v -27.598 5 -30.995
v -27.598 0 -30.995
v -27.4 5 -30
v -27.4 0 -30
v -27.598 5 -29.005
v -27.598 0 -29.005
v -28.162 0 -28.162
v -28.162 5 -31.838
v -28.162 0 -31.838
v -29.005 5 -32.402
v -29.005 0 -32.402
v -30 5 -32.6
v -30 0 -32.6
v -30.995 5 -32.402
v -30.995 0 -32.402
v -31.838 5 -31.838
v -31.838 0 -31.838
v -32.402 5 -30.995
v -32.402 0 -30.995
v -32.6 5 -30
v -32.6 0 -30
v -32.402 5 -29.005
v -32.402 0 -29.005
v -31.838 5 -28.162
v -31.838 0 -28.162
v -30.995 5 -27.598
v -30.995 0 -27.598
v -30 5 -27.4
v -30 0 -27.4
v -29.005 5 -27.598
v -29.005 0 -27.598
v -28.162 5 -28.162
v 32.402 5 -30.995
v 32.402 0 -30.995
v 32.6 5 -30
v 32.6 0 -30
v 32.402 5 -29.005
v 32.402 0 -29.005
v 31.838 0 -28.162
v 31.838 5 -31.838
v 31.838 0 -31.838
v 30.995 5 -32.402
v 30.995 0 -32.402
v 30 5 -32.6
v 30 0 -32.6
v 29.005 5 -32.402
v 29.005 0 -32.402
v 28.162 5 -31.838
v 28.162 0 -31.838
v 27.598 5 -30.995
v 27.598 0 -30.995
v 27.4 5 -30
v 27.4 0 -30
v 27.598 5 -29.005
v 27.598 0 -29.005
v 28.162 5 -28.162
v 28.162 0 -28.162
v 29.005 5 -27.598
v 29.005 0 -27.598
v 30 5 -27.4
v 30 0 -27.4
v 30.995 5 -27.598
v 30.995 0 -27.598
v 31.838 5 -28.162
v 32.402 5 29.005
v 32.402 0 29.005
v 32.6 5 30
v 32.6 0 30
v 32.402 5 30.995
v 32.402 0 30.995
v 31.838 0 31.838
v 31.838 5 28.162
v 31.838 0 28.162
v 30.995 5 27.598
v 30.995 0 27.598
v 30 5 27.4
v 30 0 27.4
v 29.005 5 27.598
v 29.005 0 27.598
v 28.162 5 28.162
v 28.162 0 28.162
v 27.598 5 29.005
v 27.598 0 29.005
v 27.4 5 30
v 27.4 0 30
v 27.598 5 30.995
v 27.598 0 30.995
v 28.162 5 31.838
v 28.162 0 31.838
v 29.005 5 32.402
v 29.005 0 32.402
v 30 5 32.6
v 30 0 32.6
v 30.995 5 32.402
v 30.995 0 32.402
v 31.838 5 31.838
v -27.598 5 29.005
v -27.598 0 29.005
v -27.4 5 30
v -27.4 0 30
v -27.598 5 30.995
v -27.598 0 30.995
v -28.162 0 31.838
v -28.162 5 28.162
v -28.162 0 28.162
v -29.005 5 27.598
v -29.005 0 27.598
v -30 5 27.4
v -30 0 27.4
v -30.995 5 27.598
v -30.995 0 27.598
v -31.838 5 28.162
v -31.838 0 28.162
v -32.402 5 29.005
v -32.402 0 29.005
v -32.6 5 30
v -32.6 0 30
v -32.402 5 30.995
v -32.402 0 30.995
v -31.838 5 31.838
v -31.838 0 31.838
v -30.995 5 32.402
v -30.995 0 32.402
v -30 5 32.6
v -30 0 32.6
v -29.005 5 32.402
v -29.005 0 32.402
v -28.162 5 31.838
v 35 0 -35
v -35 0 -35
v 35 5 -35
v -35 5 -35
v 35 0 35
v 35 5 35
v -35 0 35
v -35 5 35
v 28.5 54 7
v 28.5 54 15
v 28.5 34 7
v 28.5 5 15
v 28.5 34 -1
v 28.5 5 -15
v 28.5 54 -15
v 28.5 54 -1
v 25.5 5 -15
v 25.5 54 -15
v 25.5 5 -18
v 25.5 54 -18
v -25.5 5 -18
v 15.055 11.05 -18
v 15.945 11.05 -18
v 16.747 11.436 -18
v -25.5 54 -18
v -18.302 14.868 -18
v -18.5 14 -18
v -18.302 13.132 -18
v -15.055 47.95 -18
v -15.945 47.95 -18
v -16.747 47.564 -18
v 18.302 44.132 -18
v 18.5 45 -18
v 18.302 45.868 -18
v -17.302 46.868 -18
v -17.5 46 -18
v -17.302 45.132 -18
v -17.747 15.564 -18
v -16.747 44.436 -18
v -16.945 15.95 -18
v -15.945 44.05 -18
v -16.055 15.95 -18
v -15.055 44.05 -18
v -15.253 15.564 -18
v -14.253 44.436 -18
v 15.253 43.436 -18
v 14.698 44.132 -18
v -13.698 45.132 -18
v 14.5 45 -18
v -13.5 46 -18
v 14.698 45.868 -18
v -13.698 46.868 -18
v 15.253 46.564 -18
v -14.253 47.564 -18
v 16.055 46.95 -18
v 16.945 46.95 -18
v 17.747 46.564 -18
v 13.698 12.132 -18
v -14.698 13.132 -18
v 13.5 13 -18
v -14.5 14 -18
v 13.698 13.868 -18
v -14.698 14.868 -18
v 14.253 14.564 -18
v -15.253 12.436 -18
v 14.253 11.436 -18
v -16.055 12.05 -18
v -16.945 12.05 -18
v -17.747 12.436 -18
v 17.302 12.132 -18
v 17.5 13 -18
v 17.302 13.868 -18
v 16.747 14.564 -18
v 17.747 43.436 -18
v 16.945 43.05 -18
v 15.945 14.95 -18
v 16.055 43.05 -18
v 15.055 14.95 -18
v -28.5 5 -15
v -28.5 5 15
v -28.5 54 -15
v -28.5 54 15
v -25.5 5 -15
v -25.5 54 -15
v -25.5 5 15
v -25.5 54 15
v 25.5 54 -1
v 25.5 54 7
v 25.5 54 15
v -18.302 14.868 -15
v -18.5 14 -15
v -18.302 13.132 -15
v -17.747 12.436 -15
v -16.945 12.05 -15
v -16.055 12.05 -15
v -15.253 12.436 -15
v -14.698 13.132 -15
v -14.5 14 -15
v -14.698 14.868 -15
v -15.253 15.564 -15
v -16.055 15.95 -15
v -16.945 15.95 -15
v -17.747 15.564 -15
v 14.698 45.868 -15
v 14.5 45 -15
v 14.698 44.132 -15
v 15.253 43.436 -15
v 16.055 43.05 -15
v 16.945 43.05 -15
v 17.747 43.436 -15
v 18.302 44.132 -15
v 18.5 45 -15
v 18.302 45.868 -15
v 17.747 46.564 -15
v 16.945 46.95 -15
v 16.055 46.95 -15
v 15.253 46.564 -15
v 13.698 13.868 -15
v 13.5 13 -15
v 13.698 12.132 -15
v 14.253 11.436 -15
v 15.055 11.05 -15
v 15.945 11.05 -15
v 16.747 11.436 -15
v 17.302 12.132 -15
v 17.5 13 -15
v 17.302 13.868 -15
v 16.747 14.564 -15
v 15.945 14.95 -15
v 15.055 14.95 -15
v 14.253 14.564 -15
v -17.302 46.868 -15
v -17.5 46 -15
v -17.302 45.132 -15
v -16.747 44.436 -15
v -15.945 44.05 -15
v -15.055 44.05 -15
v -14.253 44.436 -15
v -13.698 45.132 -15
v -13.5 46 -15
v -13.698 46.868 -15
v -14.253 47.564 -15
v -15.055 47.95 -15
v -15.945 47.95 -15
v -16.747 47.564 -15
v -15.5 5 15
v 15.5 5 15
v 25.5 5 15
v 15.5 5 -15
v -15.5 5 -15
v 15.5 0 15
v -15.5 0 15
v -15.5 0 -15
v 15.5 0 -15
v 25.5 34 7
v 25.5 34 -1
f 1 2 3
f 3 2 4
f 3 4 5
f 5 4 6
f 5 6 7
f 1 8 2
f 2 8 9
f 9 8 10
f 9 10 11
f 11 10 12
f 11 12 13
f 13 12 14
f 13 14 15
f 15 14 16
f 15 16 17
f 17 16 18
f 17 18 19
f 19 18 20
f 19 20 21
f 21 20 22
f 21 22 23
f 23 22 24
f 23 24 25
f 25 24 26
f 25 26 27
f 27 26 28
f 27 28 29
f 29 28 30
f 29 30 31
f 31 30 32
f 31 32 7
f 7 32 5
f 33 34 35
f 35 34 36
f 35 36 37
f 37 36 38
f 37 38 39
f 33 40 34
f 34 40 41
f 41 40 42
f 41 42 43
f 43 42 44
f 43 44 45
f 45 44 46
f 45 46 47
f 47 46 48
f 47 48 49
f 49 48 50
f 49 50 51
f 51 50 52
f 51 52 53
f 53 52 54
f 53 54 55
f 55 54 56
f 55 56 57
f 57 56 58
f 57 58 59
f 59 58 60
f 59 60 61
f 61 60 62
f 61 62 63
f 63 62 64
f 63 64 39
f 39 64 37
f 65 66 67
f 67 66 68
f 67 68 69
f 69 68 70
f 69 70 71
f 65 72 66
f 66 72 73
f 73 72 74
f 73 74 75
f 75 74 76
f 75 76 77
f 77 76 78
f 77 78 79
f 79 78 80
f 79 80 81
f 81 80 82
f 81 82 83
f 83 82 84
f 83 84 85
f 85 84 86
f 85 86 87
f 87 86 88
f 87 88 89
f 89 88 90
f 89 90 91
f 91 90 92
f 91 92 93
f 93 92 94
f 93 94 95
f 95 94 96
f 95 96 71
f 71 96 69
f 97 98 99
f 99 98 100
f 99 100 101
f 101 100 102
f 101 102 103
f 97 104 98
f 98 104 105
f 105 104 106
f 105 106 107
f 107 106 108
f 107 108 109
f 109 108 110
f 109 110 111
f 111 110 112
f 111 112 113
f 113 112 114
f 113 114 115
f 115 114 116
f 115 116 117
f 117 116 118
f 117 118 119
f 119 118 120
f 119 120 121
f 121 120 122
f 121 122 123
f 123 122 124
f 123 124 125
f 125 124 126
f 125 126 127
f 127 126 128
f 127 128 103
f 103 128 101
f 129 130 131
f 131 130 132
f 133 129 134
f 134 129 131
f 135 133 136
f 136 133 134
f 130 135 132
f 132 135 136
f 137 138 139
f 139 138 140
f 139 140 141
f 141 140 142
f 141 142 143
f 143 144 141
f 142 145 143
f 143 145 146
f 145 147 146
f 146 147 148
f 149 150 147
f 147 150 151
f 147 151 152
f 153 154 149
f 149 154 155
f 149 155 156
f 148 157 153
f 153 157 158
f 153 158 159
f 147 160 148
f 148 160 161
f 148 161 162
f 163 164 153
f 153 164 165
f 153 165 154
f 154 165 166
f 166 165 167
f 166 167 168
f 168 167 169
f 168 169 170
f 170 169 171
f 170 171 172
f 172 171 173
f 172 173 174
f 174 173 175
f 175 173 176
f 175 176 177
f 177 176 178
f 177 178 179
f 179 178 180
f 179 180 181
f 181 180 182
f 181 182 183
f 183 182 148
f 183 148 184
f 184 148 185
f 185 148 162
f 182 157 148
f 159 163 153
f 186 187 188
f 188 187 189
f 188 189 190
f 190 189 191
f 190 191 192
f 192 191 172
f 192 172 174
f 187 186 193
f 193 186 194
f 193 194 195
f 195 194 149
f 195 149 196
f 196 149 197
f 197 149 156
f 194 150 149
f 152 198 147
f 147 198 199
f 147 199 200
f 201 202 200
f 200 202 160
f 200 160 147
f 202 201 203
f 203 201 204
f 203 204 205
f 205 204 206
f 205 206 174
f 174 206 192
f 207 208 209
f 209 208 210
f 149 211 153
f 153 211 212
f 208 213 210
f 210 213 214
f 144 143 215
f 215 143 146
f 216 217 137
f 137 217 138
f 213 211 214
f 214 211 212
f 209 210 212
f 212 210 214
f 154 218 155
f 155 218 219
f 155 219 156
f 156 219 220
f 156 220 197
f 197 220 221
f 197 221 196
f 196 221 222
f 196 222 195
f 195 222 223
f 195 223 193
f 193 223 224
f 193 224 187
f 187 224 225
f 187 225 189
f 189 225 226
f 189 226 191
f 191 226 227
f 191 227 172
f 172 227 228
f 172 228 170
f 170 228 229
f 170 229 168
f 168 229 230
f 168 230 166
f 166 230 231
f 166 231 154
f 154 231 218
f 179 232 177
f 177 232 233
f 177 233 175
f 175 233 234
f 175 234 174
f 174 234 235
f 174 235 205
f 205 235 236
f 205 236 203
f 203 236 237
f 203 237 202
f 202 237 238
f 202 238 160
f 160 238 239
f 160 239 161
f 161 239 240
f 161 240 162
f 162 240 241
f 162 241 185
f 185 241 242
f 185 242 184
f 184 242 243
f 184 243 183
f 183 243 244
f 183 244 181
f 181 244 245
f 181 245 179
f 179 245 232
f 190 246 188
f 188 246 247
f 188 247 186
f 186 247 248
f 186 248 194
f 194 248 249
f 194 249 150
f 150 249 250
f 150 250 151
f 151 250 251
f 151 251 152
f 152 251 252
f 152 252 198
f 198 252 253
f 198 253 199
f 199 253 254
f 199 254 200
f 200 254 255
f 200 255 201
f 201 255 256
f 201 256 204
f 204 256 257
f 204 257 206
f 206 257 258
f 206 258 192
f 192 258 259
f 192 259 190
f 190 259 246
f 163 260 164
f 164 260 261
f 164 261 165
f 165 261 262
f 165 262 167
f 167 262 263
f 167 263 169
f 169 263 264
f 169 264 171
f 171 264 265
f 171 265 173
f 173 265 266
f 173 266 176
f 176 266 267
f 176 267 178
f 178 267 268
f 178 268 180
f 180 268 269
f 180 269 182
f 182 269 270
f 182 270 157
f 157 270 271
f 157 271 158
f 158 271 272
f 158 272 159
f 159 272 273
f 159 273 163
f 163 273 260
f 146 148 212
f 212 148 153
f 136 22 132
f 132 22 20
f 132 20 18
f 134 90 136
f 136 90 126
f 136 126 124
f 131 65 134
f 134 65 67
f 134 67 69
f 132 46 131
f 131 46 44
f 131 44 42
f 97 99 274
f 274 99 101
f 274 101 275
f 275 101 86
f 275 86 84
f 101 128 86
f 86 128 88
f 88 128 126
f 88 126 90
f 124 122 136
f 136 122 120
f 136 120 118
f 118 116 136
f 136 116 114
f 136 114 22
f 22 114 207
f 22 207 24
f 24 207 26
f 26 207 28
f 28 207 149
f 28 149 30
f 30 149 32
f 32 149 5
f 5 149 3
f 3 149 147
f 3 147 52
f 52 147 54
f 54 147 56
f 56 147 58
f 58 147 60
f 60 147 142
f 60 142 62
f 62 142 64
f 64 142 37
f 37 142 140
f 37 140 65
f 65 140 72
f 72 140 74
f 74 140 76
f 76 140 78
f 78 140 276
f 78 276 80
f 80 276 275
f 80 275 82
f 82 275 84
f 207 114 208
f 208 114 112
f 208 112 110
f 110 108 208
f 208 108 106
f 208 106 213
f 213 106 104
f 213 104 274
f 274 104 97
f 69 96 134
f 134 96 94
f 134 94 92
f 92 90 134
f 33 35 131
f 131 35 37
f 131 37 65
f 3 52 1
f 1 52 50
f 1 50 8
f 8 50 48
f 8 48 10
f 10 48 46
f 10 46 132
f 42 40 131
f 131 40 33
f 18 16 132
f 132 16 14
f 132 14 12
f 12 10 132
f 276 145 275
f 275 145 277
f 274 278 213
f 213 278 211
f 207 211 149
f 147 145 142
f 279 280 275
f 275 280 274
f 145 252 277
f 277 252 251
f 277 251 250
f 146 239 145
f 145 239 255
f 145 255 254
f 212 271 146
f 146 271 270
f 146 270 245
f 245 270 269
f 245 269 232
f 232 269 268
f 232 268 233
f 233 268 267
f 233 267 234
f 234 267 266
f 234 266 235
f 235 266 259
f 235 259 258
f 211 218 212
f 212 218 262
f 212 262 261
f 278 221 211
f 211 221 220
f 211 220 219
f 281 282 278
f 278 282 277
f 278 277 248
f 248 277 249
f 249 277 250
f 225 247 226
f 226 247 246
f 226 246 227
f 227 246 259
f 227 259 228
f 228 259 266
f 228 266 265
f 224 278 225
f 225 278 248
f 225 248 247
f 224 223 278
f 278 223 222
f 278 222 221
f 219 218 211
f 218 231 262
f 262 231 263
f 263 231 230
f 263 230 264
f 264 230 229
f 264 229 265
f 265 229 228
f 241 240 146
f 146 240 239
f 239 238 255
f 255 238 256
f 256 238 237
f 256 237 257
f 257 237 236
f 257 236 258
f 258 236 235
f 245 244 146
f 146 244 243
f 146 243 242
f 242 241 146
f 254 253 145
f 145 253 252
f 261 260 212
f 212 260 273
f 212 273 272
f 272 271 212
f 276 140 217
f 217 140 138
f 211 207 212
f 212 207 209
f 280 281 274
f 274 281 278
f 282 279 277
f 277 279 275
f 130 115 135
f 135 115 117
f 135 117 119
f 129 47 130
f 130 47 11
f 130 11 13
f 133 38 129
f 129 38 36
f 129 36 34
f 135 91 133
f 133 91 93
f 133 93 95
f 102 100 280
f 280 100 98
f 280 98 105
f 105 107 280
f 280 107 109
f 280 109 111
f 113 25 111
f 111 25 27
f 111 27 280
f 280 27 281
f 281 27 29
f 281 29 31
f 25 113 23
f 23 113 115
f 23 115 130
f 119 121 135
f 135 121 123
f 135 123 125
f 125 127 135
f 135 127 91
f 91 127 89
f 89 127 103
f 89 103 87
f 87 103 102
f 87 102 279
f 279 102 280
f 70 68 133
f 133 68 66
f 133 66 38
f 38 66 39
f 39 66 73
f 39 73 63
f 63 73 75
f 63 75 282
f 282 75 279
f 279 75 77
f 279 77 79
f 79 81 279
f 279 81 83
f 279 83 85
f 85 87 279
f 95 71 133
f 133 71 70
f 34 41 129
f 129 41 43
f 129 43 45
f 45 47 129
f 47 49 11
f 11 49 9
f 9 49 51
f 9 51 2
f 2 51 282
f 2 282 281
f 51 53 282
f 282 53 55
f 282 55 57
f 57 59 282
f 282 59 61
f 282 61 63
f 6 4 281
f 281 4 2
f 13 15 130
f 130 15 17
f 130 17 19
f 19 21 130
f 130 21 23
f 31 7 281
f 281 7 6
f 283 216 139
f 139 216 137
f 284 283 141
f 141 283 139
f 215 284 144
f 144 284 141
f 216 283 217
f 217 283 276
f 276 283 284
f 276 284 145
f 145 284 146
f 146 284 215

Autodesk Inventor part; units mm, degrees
ref_plane "YZ Plane" through (0, 0, 0) normal (1, 0, 0) x (0, 1, 0)
ref_plane "XZ Plane" through (0, 0, 0) normal (0, 1, 0) x (-1, 0, 0)
ref_plane "XY Plane" through (0, 0, 0) normal (0, 0, 1) x (1, 0, 0)
sketch "Boceto1" plane through (0, 0, 0) normal (0, 1, 0) x (-1, 0, 0)
  line L0 (25.5, 15) -> (-25.5, 15)
  line L1 (-25.5, 15) -> (-25.5, -15)
  line L2 (-25.5, -15) -> (25.5, -15)
  line L3 (25.5, -15) -> (25.5, 15)
  line L4 (25.5, 15) -> (-25.5, -15) construction
  line L5 (-25.5, 15) -> (25.5, -15) construction
  line L6 (-15.5, 15) -> (-15.5, -15)
  line L7 (0, 15) -> (0, 11.847)
  line L8 (-25.5, 0) -> (-22.3332, 0)
  line L9 (25.5, 15) -> (25.5, -15)
  line L10 (15.5, 15) -> (15.5, -15)
  line L11 (25.5, 0) -> (22.3332, 0)
  line L12 (-25.5, -15) -> (-25.5, 15)
  line L13 (-25.5, 0) -> (-22.3332, 0)
  line L14 (-25.5, 15) -> (-25.5, -15)
  point P0 (0, 0)
  point P1 (31.5, 22.5)
  dimension "d2" = 10
  dimension "d21" = 51
  dimension "d22" = 30
extrude "Extrusión1" add sketch "Boceto1" along normal blind 5 contours L3 L2 L10 L0 | L6 L2 L1 L0
sketch "Boceto4" plane through (0, 0, 0) normal (0, 1, 0) x (-1, 0, 0)
  line L0 (-28.5, 18) -> (28.5, 18)
  line L1 (28.5, 18) -> (28.5, -18)
  line L2 (28.5, -18) -> (-28.5, -18)
  line L3 (-28.5, -18) -> (-28.5, 18)
  line L4 (-28.5, 18) -> (28.5, -18) construction
  line L5 (28.5, 18) -> (-28.5, -18) construction
  line L6 (28.5, -15) -> (-28.5, -15)
  line L7 (-28.5, 15) -> (28.5, 15)
  line L8 (25.5, -18) -> (25.5, 18)
  line L9 (-25.5, 18) -> (-25.5, -18)
  line L10 (-25.5, -15) -> (-15.5, -15) projected
  point P0 (0, 0)
  point P1 (-25.5, -15)
  point P2 (-25.5, 15)
  point P3 (25.5, 15)
  point P4 (25.5, -15)
  dimension "d23" = 57
  dimension "d24" = 36
  dimension "d27" = 0
extrude "Extrusión4" add sketch "Boceto4" along normal blind 5 contours L0 L8 L7 L9 | L7 L9 L6 L3 | L7 L1 L6 L8 | L6 L8 L2 L9
sketch "Boceto5" plane through (0, 5, 0) normal (0, 1, 0) x (1, 0, 0)
  line L0 (25.5, 18) -> (-25.5, 18) projected
  line L1 (25.5, 15) -> (25.5, 18) projected
  line L2 (-25.5, 18) -> (25.5, 18)
  line L3 (25.5, 18) -> (25.5, 15)
  line L4 (25.5, 15) -> (-25.5, 15)
  line L5 (-25.5, 15) -> (-25.5, 18)
  point P0 (0, 0)
extrude "Extrusión5" add sketch "Boceto5" along normal blind 49
sketch "Boceto6" plane through (-15.5, 0, -15) normal (0, 0, 1) x (1, 0, 0)
  circle A0 centre (32, 45) radius 2
  line L0 (41, 5) -> (41, 54) projected
  line L1 (-10, 54) -> (41, 54) projected
  line L2 (-10, 5) -> (-10, 54) projected
  line L3 (-10, 29.5) -> (15.5, 29.5)
  line L4 (15.5, 29.5) -> (15.5, 54)
  circle A1 centre (0, 46) radius 2
  circle A2 centre (-1, 14) radius 2
  circle A3 centre (31, 13) radius 2
  point P0 (15.5, 0)
  dimension "d30" = 4
  dimension "d31" = 9
  dimension "d32" = 9
  dimension "d35" = 360
extrude "Extrusión6" cut sketch "Boceto6" against normal blind 49 contours A0 | A1 | A2 | A3
sketch "Boceto7" plane through (0, 5, 0) normal (0, 1, 0) x (1, 0, 0)
  line L0 (-28.5, 15) -> (-28.5, -15) projected
  line L1 (-28.5, 15) -> (-25.5, 15)
  line L2 (-25.5, 15) -> (-25.5, -15)
  line L3 (-25.5, -15) -> (-28.5, -15)
  line L4 (-28.5, -15) -> (-28.5, 15)
  line L5 (28.5, 15) -> (25.5, 15) projected
  line L6 (25.5, -15) -> (28.5, -15) projected
  line L7 (28.5, 15) -> (25.5, 15)
  line L8 (25.5, 15) -> (25.5, -15)
  line L9 (25.5, -15) -> (28.5, -15)
  line L10 (28.5, -15) -> (28.5, 15)
  point P0 (0, 0)
  point P1 (25.5, -18)
extrude "Extrusión7" add sketch "Boceto7" along normal blind 49
sketch "Boceto12" plane through (0, 0, 0) normal (0, -1, 0) x (1, 0, 0)
  line L0 (-35, -35) -> (35, -35)
  line L1 (35, -35) -> (35, 35)
  line L2 (35, 35) -> (-35, 35)
  line L3 (-35, 35) -> (-35, -35)
  line L4 (-35, -35) -> (35, 35) construction
  line L5 (35, -35) -> (-35, 35) construction
  line L6 (30, 30) -> (-30, 30)
  line L7 (-30, 30) -> (-30, -30)
  line L8 (-30, -30) -> (30, -30)
  line L9 (30, -30) -> (30, 30)
  line L10 (30, 30) -> (-30, -30) construction
  line L11 (-30, 30) -> (30, -30) construction
  circle A0 centre (-30, 30) radius 2.6
  circle A1 centre (30, 30) radius 2.6
  circle A2 centre (30, -30) radius 2.6
  circle A3 centre (-30, -30) radius 2.6
  line L12 (15.5, -15) -> (15.5, 15) projected
  line L13 (-15.5, -15) -> (15.5, -15)
  line L14 (15.5, -15) -> (15.5, 15)
  line L15 (15.5, 15) -> (-15.5, 15)
  line L16 (-15.5, 15) -> (-15.5, -15)
  line L17 (-15.5, -15) -> (15.5, 15) construction
  line L18 (15.5, -15) -> (-15.5, 15) construction
  point P0 (0, 0)
  point P1 (0, 0)
  dimension "d63" = 70
  dimension "d64" = 70
  dimension "d65" = 60
  dimension "d66" = 5.2
  dimension "d67" = 5.2
  dimension "d68" = 5.2
  dimension "d69" = 5.2
extrude "Extrusión10" add sketch "Boceto12" against normal blind 5 contours L3 L2 L1 L0 | L6 A1 L9 A2 L8 A3 L7 A0
sketch "Boceto13" plane through (28.5, 5, 15) normal (1, 0, 0) x (0, 0, -1)
  line L0 (0, 49) -> (30, 49) projected
  line L1 (8, 49) -> (16, 49)
  line L2 (16, 49) -> (16, 29)
  line L3 (16, 29) -> (8, 29)
  line L4 (8, 29) -> (8, 49)
  line L5 (0, 0) -> (0, 49) projected
  point P0 (15, -5)
  dimension "d72" = 8
  dimension "d73" = 20
  dimension "d74" = 8
extrude "Extrusión11" cut sketch "Boceto13" against normal blind 10
properties part number "short-depth"
